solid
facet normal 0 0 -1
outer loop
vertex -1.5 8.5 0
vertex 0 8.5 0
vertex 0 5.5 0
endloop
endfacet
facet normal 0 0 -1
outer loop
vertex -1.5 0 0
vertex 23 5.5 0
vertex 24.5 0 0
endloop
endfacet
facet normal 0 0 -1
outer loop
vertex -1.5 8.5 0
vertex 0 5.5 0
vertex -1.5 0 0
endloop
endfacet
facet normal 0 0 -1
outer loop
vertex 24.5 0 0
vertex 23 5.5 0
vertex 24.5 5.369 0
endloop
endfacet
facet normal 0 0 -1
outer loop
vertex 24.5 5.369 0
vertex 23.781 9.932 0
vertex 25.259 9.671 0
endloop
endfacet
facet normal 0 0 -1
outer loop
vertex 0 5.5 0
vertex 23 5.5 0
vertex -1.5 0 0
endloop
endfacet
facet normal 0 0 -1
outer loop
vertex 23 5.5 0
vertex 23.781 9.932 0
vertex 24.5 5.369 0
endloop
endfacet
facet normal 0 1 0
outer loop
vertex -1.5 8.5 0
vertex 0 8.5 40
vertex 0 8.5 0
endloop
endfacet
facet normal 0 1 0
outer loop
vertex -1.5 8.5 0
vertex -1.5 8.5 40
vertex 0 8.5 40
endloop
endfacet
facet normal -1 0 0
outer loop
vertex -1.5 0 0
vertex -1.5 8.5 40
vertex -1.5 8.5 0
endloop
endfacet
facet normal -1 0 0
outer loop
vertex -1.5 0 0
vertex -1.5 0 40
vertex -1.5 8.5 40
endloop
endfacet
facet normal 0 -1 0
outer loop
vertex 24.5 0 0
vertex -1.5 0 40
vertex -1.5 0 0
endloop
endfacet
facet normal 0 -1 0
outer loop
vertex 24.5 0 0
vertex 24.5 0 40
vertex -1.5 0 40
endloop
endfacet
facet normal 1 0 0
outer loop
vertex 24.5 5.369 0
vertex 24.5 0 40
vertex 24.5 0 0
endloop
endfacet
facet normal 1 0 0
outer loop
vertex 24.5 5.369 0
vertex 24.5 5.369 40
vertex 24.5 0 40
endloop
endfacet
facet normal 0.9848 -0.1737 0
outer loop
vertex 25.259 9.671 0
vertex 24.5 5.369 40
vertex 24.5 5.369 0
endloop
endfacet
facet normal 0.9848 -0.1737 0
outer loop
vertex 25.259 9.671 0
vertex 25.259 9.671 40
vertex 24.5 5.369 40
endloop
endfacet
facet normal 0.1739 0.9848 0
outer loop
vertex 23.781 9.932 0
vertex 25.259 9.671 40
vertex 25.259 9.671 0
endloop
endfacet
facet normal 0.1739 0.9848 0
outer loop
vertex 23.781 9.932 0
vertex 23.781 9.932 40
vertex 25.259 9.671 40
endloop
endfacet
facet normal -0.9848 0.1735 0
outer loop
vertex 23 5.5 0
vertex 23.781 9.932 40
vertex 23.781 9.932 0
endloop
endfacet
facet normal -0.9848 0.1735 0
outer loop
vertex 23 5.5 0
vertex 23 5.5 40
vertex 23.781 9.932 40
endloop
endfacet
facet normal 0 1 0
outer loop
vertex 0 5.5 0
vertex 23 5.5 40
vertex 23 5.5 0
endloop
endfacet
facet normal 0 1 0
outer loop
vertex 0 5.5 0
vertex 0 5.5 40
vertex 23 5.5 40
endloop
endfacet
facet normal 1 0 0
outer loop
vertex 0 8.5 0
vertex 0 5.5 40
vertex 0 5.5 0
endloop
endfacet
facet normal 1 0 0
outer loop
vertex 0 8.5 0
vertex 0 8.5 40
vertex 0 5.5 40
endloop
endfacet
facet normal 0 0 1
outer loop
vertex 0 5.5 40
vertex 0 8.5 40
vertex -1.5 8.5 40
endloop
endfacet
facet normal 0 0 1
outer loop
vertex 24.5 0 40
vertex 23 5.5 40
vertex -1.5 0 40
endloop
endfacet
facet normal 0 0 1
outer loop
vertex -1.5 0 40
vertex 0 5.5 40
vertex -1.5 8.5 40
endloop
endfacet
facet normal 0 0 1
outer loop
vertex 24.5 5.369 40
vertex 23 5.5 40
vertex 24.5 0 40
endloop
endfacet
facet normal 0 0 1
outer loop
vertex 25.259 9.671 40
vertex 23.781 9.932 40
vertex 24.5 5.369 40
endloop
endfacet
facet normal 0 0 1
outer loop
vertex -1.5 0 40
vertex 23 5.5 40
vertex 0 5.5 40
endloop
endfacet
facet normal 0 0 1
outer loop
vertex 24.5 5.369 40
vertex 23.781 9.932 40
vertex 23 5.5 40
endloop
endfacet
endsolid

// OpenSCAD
t = 5.5;
w = 40;
di = 23;
dd = 26;

linear_extrude(w) {
  square([di, t]);

  translate([-1.5, 0, 0])
  square([1.5, t+3]);

  color("red")
  translate([di, 0, 0])
  square([1.5, t]);

  color("blue")
  translate([di, t, 0])
  rotate([0, 0, -10])
  square([1.5, t-1]);
}
